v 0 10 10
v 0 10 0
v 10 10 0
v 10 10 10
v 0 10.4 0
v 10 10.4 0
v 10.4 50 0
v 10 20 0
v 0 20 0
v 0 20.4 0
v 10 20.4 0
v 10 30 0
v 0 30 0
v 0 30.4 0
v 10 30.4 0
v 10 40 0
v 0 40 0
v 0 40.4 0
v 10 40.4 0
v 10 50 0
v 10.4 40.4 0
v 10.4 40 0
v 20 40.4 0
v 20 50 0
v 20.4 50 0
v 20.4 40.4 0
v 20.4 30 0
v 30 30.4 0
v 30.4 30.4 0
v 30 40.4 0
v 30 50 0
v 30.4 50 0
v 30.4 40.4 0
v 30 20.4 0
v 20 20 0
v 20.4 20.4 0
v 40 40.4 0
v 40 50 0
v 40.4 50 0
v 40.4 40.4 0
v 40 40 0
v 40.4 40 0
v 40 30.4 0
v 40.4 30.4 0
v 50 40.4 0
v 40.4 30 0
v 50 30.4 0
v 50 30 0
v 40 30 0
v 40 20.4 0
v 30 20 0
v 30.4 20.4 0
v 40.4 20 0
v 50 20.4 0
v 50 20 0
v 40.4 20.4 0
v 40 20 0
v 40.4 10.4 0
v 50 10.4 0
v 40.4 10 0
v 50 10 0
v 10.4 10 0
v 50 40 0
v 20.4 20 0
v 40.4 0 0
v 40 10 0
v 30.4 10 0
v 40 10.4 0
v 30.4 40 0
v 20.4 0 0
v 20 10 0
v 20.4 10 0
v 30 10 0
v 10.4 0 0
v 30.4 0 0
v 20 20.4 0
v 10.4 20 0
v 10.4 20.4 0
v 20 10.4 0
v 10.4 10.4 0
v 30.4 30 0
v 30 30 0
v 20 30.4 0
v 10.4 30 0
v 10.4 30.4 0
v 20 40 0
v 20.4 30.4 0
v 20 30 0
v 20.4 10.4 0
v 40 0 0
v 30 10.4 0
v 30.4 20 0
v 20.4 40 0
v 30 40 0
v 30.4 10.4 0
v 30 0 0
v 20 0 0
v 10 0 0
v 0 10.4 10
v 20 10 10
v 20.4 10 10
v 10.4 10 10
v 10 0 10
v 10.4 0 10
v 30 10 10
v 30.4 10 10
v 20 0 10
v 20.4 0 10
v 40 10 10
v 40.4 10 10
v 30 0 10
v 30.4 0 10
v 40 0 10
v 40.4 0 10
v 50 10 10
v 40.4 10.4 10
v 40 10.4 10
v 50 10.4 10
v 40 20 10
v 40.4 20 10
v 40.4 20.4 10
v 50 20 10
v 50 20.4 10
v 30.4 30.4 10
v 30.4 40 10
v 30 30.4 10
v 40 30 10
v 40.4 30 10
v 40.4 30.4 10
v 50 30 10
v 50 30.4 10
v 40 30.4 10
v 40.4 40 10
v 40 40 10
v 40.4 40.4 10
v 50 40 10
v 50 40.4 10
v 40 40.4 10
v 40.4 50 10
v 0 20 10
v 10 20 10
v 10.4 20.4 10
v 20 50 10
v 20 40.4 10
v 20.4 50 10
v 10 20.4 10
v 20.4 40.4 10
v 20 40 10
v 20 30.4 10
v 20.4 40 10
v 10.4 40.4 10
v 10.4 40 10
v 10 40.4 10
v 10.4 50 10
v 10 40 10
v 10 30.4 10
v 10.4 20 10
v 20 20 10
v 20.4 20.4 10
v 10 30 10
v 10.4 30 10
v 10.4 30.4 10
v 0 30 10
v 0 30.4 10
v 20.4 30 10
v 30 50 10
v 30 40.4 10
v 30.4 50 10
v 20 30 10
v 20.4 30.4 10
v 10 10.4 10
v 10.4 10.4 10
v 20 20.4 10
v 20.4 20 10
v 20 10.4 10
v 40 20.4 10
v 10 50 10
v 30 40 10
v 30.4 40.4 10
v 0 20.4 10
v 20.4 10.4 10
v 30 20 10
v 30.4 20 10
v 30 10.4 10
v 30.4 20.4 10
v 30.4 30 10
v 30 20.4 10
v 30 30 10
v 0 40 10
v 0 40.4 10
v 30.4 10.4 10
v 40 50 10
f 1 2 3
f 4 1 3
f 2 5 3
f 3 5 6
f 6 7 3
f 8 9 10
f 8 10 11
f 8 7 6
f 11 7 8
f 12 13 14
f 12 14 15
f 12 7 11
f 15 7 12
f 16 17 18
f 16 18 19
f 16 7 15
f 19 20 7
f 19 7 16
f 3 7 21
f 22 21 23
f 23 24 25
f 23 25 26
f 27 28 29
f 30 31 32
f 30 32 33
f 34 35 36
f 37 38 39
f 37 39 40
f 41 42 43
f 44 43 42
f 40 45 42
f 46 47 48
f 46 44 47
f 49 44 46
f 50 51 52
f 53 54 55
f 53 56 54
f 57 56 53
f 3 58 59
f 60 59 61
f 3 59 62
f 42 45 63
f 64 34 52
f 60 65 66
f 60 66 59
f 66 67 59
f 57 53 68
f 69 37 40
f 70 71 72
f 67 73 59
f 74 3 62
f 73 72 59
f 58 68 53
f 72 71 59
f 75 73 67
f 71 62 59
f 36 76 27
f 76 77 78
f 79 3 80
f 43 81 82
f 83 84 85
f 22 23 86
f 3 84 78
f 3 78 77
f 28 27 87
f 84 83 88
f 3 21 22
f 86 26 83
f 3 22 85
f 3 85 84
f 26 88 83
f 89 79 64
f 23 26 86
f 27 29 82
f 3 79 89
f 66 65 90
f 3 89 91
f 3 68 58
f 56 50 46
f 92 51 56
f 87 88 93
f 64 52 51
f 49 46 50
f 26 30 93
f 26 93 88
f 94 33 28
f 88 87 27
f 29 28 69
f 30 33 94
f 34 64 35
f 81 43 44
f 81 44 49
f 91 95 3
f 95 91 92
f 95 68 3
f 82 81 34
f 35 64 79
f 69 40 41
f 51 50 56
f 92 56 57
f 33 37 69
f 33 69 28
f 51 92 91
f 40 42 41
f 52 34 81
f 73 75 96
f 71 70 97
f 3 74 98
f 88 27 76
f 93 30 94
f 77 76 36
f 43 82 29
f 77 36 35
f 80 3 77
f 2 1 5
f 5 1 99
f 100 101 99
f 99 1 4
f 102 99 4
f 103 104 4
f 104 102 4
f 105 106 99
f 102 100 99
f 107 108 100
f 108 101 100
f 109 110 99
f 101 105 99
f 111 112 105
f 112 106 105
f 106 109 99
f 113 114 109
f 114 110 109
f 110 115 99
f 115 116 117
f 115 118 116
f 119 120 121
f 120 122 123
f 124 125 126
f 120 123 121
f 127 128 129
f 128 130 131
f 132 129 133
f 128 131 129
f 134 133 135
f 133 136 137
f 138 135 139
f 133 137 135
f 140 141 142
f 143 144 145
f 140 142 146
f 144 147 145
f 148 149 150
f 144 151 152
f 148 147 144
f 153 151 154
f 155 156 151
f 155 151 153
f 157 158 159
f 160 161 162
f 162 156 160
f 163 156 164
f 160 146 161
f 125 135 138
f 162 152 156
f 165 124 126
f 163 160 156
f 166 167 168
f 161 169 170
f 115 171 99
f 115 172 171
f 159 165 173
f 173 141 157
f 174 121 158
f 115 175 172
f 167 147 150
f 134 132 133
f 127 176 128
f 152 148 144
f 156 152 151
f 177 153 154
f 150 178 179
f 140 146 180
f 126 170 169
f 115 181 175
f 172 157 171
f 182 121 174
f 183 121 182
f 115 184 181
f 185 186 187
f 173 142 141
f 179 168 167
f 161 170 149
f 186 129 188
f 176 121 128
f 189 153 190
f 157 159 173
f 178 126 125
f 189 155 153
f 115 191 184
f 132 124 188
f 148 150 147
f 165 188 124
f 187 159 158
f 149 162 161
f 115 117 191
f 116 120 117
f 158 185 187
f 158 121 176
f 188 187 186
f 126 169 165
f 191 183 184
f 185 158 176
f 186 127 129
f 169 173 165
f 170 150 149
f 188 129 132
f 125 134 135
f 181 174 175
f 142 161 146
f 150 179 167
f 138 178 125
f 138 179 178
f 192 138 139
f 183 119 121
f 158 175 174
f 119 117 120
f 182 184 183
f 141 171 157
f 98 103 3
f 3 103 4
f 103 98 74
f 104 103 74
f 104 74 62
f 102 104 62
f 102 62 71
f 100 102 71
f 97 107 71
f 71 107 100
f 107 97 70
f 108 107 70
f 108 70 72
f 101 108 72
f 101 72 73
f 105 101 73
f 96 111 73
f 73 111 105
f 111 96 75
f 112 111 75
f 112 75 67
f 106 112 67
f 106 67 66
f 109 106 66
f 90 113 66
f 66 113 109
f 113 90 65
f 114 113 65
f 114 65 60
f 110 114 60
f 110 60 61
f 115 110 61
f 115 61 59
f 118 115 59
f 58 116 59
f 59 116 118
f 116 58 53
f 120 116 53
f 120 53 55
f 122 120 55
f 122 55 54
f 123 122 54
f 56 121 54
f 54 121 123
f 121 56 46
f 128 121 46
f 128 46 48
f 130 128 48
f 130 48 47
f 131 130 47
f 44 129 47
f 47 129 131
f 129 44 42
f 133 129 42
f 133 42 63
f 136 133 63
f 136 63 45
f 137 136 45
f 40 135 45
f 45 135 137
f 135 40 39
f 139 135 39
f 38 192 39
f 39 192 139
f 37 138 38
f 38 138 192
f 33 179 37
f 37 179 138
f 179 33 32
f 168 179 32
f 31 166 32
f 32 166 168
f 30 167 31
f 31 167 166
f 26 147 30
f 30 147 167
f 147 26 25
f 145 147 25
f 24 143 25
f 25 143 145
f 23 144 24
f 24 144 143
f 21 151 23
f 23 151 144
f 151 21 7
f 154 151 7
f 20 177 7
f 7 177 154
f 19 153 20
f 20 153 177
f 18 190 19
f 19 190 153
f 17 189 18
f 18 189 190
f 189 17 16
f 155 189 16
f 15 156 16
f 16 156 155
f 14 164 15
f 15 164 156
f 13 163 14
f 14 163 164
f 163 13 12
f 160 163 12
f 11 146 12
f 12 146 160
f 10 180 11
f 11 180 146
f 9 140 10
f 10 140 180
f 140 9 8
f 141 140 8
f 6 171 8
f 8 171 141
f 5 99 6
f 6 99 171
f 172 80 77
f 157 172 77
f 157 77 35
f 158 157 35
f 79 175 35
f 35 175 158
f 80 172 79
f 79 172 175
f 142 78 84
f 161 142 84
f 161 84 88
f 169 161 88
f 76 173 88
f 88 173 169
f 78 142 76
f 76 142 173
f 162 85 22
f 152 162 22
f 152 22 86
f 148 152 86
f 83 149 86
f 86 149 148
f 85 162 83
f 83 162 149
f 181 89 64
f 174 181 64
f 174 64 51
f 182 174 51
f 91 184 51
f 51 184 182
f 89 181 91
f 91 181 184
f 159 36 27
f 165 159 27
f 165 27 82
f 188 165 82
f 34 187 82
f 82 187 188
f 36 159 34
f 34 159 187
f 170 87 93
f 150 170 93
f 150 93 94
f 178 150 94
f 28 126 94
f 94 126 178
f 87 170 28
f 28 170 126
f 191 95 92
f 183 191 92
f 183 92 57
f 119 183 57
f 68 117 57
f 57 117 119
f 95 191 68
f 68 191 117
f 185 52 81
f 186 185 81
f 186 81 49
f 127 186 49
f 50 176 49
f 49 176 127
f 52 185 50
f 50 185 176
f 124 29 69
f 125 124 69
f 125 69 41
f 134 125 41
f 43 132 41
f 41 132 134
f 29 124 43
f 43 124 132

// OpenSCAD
module xspur() {
	cube(size=[0.4, 50, 10], center=false);
}

module yspur() {
	rotate([0, 0, 90])
	translate([0, -50, 0]) xspur();
}

union() {
for (x = [1:4])
  translate([x * 10, 0, 0]) xspur();

for (y = [1:4])
  translate([0, y * 10, 0]) yspur();
}
